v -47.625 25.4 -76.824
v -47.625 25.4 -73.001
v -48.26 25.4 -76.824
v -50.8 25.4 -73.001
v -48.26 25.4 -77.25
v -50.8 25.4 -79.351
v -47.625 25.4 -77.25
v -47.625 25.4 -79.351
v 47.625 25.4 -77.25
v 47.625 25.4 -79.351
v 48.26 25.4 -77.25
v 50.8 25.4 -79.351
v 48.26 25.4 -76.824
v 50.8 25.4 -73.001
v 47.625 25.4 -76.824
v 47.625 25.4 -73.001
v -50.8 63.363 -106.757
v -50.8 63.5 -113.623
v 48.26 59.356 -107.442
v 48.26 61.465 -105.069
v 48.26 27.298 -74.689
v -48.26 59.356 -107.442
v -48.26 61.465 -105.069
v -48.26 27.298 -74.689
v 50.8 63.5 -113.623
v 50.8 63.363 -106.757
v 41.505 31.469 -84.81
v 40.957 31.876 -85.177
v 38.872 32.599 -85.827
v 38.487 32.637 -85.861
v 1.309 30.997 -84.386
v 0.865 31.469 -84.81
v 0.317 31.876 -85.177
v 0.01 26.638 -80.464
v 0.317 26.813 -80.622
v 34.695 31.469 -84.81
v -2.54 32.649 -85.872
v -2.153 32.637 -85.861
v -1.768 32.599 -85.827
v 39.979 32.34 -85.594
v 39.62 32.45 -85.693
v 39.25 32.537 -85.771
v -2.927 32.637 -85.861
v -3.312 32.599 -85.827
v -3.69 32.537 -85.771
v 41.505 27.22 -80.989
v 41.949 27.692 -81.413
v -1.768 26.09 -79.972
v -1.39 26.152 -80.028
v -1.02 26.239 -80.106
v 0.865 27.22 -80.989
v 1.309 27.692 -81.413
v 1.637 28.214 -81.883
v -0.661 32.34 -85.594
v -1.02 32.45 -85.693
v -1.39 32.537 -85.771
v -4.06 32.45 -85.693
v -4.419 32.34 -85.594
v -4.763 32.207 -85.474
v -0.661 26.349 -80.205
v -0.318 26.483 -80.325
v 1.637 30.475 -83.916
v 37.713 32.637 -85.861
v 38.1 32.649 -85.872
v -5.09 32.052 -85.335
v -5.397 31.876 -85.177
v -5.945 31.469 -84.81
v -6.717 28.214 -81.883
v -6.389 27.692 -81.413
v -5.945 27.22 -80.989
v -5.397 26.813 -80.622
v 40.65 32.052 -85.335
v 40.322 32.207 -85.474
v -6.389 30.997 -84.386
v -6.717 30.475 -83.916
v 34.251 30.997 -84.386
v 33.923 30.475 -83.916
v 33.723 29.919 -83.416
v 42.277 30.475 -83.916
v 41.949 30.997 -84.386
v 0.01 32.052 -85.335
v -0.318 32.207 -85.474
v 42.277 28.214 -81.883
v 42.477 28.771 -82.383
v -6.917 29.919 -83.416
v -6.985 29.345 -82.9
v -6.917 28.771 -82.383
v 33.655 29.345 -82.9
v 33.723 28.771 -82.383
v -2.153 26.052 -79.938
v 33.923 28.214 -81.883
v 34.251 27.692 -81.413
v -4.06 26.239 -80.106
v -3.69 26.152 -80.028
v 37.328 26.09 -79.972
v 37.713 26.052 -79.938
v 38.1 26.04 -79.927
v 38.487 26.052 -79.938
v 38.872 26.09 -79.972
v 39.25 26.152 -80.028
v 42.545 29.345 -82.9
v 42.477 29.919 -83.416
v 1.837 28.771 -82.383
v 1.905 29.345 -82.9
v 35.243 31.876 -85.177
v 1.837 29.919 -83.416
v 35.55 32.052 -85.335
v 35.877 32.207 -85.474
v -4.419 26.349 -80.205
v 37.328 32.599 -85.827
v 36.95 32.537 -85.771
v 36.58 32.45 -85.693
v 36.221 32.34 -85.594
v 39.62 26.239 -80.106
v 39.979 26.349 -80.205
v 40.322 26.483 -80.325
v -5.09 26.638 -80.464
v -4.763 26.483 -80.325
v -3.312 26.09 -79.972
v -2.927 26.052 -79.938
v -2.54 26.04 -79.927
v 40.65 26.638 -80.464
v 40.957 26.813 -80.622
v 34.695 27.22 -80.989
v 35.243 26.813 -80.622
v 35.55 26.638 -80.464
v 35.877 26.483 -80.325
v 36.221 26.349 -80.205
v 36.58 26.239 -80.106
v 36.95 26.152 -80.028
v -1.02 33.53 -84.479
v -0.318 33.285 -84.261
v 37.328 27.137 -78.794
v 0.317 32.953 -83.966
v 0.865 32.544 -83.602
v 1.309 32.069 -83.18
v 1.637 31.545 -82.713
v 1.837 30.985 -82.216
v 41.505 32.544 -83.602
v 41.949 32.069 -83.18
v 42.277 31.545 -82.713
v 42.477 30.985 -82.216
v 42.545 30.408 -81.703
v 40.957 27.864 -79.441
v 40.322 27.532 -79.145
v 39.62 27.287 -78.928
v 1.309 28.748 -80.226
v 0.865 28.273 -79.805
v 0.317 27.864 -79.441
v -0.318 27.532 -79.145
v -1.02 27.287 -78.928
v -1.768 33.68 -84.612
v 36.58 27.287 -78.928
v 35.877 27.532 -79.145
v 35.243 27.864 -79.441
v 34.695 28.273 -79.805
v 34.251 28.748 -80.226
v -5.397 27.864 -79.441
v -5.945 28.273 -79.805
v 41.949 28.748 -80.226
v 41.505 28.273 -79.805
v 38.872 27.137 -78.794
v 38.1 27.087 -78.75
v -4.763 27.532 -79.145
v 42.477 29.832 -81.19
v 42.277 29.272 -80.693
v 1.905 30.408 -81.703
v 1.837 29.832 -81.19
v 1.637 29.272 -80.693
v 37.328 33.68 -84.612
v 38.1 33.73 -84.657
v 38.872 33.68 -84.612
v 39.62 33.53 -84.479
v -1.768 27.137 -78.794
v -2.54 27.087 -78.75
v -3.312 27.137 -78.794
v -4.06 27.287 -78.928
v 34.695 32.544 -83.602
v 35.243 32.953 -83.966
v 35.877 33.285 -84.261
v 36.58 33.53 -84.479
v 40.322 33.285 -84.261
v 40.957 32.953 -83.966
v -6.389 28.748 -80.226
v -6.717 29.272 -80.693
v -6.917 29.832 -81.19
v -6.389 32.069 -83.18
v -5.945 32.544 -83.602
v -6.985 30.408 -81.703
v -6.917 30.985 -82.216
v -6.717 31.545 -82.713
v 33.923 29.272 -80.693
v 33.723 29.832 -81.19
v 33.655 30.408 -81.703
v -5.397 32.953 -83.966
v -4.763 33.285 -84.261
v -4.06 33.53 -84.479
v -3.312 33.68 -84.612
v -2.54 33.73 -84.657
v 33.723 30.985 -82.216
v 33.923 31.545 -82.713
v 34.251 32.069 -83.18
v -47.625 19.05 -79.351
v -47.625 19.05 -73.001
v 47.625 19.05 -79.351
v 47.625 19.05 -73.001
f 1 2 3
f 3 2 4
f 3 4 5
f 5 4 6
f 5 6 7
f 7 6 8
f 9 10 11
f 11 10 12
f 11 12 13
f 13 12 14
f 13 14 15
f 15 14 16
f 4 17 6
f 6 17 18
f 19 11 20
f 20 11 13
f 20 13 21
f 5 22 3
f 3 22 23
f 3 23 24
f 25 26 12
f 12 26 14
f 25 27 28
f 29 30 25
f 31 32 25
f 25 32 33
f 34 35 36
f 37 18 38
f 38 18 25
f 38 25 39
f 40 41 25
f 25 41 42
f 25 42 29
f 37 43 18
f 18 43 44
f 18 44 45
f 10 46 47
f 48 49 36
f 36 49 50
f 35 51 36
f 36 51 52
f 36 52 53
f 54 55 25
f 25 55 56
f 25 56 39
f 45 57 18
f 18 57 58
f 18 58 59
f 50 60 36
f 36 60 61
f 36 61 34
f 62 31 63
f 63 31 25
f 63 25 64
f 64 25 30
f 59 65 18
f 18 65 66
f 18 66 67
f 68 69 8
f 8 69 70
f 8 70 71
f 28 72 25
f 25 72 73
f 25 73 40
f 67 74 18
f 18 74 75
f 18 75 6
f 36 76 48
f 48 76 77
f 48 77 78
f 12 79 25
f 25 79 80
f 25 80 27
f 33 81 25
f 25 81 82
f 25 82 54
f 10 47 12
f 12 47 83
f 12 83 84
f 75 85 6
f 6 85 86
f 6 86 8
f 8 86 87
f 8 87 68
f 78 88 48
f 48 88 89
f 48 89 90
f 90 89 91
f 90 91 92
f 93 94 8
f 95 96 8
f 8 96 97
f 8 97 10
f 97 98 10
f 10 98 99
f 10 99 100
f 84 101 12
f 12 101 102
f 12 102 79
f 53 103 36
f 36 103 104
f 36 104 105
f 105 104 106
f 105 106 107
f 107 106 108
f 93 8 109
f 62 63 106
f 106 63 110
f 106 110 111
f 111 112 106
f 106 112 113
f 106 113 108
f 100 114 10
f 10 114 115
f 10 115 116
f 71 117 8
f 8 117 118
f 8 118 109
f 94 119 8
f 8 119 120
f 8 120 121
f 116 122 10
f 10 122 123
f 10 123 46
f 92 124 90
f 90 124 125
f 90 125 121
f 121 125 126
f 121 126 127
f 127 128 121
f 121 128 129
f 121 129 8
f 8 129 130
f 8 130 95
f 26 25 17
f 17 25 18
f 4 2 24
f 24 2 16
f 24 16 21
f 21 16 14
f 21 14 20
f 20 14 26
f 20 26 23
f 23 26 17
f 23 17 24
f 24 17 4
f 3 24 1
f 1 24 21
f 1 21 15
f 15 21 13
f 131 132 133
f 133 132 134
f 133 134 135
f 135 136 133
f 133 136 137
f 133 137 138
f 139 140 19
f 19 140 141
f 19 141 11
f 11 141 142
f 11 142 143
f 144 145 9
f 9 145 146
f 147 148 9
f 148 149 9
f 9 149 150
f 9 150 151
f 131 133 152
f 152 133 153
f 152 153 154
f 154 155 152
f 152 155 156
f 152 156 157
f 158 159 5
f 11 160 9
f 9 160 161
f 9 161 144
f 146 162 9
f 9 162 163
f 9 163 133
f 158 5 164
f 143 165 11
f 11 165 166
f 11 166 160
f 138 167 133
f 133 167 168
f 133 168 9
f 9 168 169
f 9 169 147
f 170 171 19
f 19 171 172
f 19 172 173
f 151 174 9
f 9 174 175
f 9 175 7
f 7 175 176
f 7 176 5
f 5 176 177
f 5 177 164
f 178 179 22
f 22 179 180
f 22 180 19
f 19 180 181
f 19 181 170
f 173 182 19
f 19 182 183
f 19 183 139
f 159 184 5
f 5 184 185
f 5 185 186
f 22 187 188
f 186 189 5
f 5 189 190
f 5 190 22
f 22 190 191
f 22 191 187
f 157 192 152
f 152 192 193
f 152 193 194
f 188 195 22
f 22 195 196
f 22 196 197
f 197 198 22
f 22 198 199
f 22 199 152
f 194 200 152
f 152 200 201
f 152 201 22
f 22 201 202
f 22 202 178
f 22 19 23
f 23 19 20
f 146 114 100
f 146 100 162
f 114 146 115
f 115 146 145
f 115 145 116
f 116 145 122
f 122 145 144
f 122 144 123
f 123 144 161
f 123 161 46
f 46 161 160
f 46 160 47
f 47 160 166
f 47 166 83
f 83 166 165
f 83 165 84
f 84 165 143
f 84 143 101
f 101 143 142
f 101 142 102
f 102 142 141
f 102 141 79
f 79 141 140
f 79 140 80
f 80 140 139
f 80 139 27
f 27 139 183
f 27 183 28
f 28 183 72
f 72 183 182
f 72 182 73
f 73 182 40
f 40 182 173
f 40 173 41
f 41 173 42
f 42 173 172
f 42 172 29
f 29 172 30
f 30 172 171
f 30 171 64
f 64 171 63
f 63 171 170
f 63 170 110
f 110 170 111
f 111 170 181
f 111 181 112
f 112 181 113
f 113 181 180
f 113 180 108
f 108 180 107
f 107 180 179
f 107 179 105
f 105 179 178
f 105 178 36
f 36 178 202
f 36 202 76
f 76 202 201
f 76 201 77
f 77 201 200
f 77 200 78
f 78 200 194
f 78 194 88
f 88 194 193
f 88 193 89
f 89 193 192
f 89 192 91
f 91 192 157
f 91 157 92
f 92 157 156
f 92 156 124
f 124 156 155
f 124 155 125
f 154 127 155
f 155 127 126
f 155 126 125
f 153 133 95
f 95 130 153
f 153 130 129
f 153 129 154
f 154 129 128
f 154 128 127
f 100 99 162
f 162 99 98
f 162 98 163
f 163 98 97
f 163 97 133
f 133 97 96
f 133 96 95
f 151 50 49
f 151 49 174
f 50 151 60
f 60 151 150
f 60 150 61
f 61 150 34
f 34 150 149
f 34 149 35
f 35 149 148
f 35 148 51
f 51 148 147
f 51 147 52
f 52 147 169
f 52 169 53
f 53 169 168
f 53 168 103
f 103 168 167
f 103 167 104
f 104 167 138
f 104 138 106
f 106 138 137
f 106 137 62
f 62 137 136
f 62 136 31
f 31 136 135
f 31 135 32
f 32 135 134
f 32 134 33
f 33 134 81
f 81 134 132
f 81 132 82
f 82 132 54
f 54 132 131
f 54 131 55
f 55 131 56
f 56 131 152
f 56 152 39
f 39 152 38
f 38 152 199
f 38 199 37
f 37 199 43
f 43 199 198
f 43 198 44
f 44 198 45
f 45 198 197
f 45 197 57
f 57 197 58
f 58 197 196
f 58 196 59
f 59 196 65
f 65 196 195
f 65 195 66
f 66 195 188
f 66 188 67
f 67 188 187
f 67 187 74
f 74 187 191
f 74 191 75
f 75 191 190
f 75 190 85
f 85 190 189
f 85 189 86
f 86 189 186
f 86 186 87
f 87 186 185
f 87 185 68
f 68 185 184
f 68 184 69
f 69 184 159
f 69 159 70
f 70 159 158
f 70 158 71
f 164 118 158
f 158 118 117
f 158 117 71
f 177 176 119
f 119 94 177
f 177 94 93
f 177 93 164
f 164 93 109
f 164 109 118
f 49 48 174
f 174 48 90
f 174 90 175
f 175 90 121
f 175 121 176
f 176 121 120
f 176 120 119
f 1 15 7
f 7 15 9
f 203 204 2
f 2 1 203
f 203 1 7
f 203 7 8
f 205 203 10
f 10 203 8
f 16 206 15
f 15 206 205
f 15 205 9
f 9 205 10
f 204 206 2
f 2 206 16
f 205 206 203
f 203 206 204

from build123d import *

# Parameters (mm, degrees)
SKETCH1_W            = 101.6
SKETCH1_H            = 50.8
BOSS_EXTRUDE1_DEPTH  = 228.6
SKETCH2_W            = 96.52
SKETCH2_H            = 172.72
CUT_EXTRUDE1_DEPTH   = 50.8
BOSS_EXTRUDE2_DEPTH  = 50.8
BOSS_EXTRUDE3_DEPTH  = 101.6
SKETCH13_W           = 96.52
SKETCH13_H           = 25.4
CUT_EXTRUDE2_DEPTH   = 50.8
SKETCH14_W           = 96.52
SKETCH14_H           = 25.4
CUT_EXTRUDE3_DEPTH   = 50.8
SKETCH15_W           = 96.52
SKETCH15_H           = 50.8
CUT_EXTRUDE6_DEPTH   = 6.35
SKETCH16_W           = 96.52
SKETCH16_H           = 45.72
CUT_EXTRUDE7_DEPTH   = 3.175
SKETCH17_W           = 101.6
SKETCH17_H           = 25.4
CUT_EXTRUDE8_DEPTH   = 228.6
SKETCH20_W           = 6.35
SKETCH20_H           = 12.7
BOSS_EXTRUDE5_DEPTH  = 101.6
SKETCH24_W           = 12.7
SKETCH24_H           = 6.35
BOSS_EXTRUDE8_DEPTH  = 19.05
SKETCH26_W           = 12.7
SKETCH26_H           = 6.35
BOSS_EXTRUDE10_DEPTH = 19.05
SKETCH27_W           = 12.7
SKETCH27_H           = 6.35
BOSS_EXTRUDE11_DEPTH = 19.05
SKETCH33_W           = 96.52
SKETCH33_H           = 2.54
BOSS_EXTRUDE13_DEPTH = 2.54
SKETCH34_W           = 96.52
SKETCH34_H           = 2.54
BOSS_EXTRUDE17_DEPTH = 2.54
SKETCH36_W           = 218.44
SKETCH36_H           = 2.54
BOSS_EXTRUDE18_DEPTH = 2.54
SKETCH37_W           = 218.44
SKETCH37_H           = 2.54
BOSS_EXTRUDE19_DEPTH = 2.54
SKETCH45_W           = 13.208
SKETCH45_H           = 10.16
CUT_EXTRUDE19_DEPTH  = 6.35
CUT_EXTRUDE22_START  = -101.6
CUT_EXTRUDE22_DEPTH  = 101.6
SKETCH60_R           = 4.445
CUT_EXTRUDE23_DEPTH  = 2.54
SKETCH61_R           = 4.445
CUT_EXTRUDE24_DEPTH  = 2.54
SKETCH64_W           = 95.25
SKETCH64_H           = 6.35
BOSS_EXTRUDE33_DEPTH = 6.35


# Read off the part's stored shape, not the designer's step: Cut-Extrude22
with BuildPart() as part:
    # Sketch1 → Boss-Extrude1 (new body)
    with BuildSketch(Plane.XY):
        Rectangle(SKETCH1_W, SKETCH1_H)
    extrude(amount=-BOSS_EXTRUDE1_DEPTH)

    # Sketch2 → Cut-Extrude1 (cut)
    with BuildSketch(Plane(origin=(0, 25.4, 0), x_dir=(1, 0, 0), z_dir=(0, 1, 0))):
        with Locations((0, 114.3)):
            Rectangle(SKETCH2_W, SKETCH2_H)
    extrude(amount=-CUT_EXTRUDE1_DEPTH, mode=Mode.SUBTRACT)

    # Sketch3 → Boss-Extrude2 (add)
    with BuildSketch(Plane(origin=(0, 25.4, 0), x_dir=(1, 0, 0), z_dir=(0, 1, 0))):
        Polygon((48.26, 73.001295984), (48.26, 79.351295984), (-48.26, 79.351295984), (-48.26, 73.001295984), (0, 73.001295984), align=None)
    extrude(amount=-BOSS_EXTRUDE2_DEPTH)

    # Sketch11 → Boss-Extrude3 (add)
    with BuildSketch(Plane.ZY.offset(50.8)):
        Polygon((-79.351295984, 25.4), (-113.622558301, 63.5), (-106.756614843, 63.363382999), (-73.001295984, 25.4), align=None)
    extrude(amount=-BOSS_EXTRUDE3_DEPTH)

    # Sketch13 → Cut-Extrude2 (cut)
    with BuildSketch(Plane(origin=(0, 25.4, 0), x_dir=(1, 0, 0), z_dir=(0, 1, 0))):
        with Locations((0, 213.36)):
            Rectangle(SKETCH13_W, SKETCH13_H)
    extrude(amount=-CUT_EXTRUDE2_DEPTH, mode=Mode.SUBTRACT)

    # Sketch14 → Cut-Extrude3 (cut)
    with BuildSketch(Plane(origin=(0, 25.4, 0), x_dir=(1, 0, 0), z_dir=(0, 1, 0))):
        with Locations((0, 15.24)):
            Rectangle(SKETCH14_W, SKETCH14_H)
    extrude(amount=-CUT_EXTRUDE3_DEPTH, mode=Mode.SUBTRACT)

    # Sketch15 → Cut-Extrude6 (cut)
    with BuildSketch(Plane.XY.offset(-73.001295984)):
        Rectangle(SKETCH15_W, SKETCH15_H)
    extrude(amount=-CUT_EXTRUDE6_DEPTH, mode=Mode.SUBTRACT)

    # Sketch16 → Cut-Extrude7 (cut)
    with BuildSketch(Plane(origin=(0, -25.035409247, -28.156416881), x_dir=(1, 0, 0), z_dir=(0, 0.6644747806949454, 0.7473106889509907))):
        with Locations((0, 92.889211639)):
            Rectangle(SKETCH16_W, SKETCH16_H)
    extrude(amount=-CUT_EXTRUDE7_DEPTH, mode=Mode.SUBTRACT)

    # Sketch17 → Cut-Extrude8 (cut)
    with BuildSketch(Plane.XY):
        with Locations((0, -12.7)):
            Rectangle(SKETCH17_W, SKETCH17_H)
    extrude(amount=-CUT_EXTRUDE8_DEPTH, mode=Mode.SUBTRACT)

    # Sketch20 → Boss-Extrude5 (add)
    with BuildSketch(Plane.ZY.offset(50.8)):
        with Locations((-174.625, 6.35)):
            Rectangle(SKETCH20_W, SKETCH20_H)
    extrude(amount=-BOSS_EXTRUDE5_DEPTH)

    # Sketch24 → Boss-Extrude8 (add)
    with BuildSketch(Plane.XZ):
        with Locations((44.45, -76.176295984)):
            Rectangle(SKETCH24_W, SKETCH24_H)
    extrude(amount=BOSS_EXTRUDE8_DEPTH)

    # Sketch26 → Boss-Extrude10 (add)
    with BuildSketch(Plane.XZ):
        with Locations((-44.45, -174.625)):
            Rectangle(SKETCH26_W, SKETCH26_H)
    extrude(amount=BOSS_EXTRUDE10_DEPTH)

    # Sketch27 → Boss-Extrude11 (add)
    with BuildSketch(Plane.XZ):
        with Locations((44.45, -174.625)):
            Rectangle(SKETCH27_W, SKETCH27_H)
    extrude(amount=BOSS_EXTRUDE11_DEPTH)

    # Sketch33 → Boss-Extrude13 (add)
    with BuildSketch(Plane(origin=(0, 0, -2.54), x_dir=(-1, 0, 0), z_dir=(0, 0, -1))):
        with Locations((0, 12.7)):
            Rectangle(SKETCH33_W, SKETCH33_H)
    extrude(amount=BOSS_EXTRUDE13_DEPTH)

    # Sketch34 → Boss-Extrude17 (add)
    with BuildSketch(Plane.XY.offset(-226.06)):
        with Locations((0, 12.7)):
            Rectangle(SKETCH34_W, SKETCH34_H)
    extrude(amount=BOSS_EXTRUDE17_DEPTH)

    # Sketch36 → Boss-Extrude18 (add)
    with BuildSketch(Plane(origin=(-48.26, 0, 0), x_dir=(0, 0, -1), z_dir=(1, 0, 0))):
        with Locations((114.3, 12.7)):
            Rectangle(SKETCH36_W, SKETCH36_H)
    extrude(amount=BOSS_EXTRUDE18_DEPTH)

    # Sketch37 → Boss-Extrude19 (add)
    with BuildSketch(Plane.ZY.offset(-48.26)):
        with Locations((-114.3, 12.7)):
            Rectangle(SKETCH37_W, SKETCH37_H)
    extrude(amount=BOSS_EXTRUDE19_DEPTH)

    # Sketch45 → Cut-Extrude19 (cut)
    with BuildSketch(Plane.XY):
        with Locations((37.933039121, 12.7)):
            Rectangle(SKETCH45_W, SKETCH45_H)
        with Locations((-37.933039121, 12.7)):
            Rectangle(SKETCH45_W, SKETCH45_H)
    extrude(amount=-CUT_EXTRUDE19_DEPTH, mode=Mode.SUBTRACT)

    # Cut-Extrude22 outline → Cut-Extrude22 (cut)
    with BuildSketch(Plane.ZY.offset(50.8).offset(CUT_EXTRUDE22_START)):
        Polygon((-73.001295984, 0), (0, 0), (0, 25.4), (-228.6, 25.4), (-228.6, 0), (-177.8, 0), (-177.8, -19.05), (-171.45, -19.05), (-171.45, 0), (-79.351295984, 0), (-79.351295984, -19.05), (-73.001295984, -19.05), align=None)
    extrude(amount=CUT_EXTRUDE22_DEPTH, mode=Mode.SUBTRACT)

    # Sketch60 → Cut-Extrude23 (cut)
    with BuildSketch(Plane(origin=(0, -27.145116675, -30.529128319), x_dir=(1, 0, 0), z_dir=(0, 0.6644747806949455, 0.7473106889509905))):
        with Locations(Location((38.1, 77.014211639, 0), (0, 0, 270))):
            Circle(SKETCH60_R)
    extrude(amount=-CUT_EXTRUDE23_DEPTH, mode=Mode.SUBTRACT)

    # Sketch61 → Cut-Extrude24 (cut)
    with BuildSketch(Plane(origin=(0, -27.145116675, -30.529128319), x_dir=(1, 0, 0), z_dir=(0, 0.6644747806949455, 0.7473106889509905))):
        with Locations(Location((-2.54, 77.014211639, 0), (0, 0, 270))):
            Circle(SKETCH61_R)
    extrude(amount=-CUT_EXTRUDE24_DEPTH, mode=Mode.SUBTRACT)

    # Sketch64 → Boss-Extrude33 (add)
    with BuildSketch(Plane(origin=(0, 25.4, 0), x_dir=(-1, 0, 0), z_dir=(0, -1, 0))):
        with Locations((0, 76.176295984)):
            Rectangle(SKETCH64_W, SKETCH64_H)
    extrude(amount=BOSS_EXTRUDE33_DEPTH)


solid = part.part
